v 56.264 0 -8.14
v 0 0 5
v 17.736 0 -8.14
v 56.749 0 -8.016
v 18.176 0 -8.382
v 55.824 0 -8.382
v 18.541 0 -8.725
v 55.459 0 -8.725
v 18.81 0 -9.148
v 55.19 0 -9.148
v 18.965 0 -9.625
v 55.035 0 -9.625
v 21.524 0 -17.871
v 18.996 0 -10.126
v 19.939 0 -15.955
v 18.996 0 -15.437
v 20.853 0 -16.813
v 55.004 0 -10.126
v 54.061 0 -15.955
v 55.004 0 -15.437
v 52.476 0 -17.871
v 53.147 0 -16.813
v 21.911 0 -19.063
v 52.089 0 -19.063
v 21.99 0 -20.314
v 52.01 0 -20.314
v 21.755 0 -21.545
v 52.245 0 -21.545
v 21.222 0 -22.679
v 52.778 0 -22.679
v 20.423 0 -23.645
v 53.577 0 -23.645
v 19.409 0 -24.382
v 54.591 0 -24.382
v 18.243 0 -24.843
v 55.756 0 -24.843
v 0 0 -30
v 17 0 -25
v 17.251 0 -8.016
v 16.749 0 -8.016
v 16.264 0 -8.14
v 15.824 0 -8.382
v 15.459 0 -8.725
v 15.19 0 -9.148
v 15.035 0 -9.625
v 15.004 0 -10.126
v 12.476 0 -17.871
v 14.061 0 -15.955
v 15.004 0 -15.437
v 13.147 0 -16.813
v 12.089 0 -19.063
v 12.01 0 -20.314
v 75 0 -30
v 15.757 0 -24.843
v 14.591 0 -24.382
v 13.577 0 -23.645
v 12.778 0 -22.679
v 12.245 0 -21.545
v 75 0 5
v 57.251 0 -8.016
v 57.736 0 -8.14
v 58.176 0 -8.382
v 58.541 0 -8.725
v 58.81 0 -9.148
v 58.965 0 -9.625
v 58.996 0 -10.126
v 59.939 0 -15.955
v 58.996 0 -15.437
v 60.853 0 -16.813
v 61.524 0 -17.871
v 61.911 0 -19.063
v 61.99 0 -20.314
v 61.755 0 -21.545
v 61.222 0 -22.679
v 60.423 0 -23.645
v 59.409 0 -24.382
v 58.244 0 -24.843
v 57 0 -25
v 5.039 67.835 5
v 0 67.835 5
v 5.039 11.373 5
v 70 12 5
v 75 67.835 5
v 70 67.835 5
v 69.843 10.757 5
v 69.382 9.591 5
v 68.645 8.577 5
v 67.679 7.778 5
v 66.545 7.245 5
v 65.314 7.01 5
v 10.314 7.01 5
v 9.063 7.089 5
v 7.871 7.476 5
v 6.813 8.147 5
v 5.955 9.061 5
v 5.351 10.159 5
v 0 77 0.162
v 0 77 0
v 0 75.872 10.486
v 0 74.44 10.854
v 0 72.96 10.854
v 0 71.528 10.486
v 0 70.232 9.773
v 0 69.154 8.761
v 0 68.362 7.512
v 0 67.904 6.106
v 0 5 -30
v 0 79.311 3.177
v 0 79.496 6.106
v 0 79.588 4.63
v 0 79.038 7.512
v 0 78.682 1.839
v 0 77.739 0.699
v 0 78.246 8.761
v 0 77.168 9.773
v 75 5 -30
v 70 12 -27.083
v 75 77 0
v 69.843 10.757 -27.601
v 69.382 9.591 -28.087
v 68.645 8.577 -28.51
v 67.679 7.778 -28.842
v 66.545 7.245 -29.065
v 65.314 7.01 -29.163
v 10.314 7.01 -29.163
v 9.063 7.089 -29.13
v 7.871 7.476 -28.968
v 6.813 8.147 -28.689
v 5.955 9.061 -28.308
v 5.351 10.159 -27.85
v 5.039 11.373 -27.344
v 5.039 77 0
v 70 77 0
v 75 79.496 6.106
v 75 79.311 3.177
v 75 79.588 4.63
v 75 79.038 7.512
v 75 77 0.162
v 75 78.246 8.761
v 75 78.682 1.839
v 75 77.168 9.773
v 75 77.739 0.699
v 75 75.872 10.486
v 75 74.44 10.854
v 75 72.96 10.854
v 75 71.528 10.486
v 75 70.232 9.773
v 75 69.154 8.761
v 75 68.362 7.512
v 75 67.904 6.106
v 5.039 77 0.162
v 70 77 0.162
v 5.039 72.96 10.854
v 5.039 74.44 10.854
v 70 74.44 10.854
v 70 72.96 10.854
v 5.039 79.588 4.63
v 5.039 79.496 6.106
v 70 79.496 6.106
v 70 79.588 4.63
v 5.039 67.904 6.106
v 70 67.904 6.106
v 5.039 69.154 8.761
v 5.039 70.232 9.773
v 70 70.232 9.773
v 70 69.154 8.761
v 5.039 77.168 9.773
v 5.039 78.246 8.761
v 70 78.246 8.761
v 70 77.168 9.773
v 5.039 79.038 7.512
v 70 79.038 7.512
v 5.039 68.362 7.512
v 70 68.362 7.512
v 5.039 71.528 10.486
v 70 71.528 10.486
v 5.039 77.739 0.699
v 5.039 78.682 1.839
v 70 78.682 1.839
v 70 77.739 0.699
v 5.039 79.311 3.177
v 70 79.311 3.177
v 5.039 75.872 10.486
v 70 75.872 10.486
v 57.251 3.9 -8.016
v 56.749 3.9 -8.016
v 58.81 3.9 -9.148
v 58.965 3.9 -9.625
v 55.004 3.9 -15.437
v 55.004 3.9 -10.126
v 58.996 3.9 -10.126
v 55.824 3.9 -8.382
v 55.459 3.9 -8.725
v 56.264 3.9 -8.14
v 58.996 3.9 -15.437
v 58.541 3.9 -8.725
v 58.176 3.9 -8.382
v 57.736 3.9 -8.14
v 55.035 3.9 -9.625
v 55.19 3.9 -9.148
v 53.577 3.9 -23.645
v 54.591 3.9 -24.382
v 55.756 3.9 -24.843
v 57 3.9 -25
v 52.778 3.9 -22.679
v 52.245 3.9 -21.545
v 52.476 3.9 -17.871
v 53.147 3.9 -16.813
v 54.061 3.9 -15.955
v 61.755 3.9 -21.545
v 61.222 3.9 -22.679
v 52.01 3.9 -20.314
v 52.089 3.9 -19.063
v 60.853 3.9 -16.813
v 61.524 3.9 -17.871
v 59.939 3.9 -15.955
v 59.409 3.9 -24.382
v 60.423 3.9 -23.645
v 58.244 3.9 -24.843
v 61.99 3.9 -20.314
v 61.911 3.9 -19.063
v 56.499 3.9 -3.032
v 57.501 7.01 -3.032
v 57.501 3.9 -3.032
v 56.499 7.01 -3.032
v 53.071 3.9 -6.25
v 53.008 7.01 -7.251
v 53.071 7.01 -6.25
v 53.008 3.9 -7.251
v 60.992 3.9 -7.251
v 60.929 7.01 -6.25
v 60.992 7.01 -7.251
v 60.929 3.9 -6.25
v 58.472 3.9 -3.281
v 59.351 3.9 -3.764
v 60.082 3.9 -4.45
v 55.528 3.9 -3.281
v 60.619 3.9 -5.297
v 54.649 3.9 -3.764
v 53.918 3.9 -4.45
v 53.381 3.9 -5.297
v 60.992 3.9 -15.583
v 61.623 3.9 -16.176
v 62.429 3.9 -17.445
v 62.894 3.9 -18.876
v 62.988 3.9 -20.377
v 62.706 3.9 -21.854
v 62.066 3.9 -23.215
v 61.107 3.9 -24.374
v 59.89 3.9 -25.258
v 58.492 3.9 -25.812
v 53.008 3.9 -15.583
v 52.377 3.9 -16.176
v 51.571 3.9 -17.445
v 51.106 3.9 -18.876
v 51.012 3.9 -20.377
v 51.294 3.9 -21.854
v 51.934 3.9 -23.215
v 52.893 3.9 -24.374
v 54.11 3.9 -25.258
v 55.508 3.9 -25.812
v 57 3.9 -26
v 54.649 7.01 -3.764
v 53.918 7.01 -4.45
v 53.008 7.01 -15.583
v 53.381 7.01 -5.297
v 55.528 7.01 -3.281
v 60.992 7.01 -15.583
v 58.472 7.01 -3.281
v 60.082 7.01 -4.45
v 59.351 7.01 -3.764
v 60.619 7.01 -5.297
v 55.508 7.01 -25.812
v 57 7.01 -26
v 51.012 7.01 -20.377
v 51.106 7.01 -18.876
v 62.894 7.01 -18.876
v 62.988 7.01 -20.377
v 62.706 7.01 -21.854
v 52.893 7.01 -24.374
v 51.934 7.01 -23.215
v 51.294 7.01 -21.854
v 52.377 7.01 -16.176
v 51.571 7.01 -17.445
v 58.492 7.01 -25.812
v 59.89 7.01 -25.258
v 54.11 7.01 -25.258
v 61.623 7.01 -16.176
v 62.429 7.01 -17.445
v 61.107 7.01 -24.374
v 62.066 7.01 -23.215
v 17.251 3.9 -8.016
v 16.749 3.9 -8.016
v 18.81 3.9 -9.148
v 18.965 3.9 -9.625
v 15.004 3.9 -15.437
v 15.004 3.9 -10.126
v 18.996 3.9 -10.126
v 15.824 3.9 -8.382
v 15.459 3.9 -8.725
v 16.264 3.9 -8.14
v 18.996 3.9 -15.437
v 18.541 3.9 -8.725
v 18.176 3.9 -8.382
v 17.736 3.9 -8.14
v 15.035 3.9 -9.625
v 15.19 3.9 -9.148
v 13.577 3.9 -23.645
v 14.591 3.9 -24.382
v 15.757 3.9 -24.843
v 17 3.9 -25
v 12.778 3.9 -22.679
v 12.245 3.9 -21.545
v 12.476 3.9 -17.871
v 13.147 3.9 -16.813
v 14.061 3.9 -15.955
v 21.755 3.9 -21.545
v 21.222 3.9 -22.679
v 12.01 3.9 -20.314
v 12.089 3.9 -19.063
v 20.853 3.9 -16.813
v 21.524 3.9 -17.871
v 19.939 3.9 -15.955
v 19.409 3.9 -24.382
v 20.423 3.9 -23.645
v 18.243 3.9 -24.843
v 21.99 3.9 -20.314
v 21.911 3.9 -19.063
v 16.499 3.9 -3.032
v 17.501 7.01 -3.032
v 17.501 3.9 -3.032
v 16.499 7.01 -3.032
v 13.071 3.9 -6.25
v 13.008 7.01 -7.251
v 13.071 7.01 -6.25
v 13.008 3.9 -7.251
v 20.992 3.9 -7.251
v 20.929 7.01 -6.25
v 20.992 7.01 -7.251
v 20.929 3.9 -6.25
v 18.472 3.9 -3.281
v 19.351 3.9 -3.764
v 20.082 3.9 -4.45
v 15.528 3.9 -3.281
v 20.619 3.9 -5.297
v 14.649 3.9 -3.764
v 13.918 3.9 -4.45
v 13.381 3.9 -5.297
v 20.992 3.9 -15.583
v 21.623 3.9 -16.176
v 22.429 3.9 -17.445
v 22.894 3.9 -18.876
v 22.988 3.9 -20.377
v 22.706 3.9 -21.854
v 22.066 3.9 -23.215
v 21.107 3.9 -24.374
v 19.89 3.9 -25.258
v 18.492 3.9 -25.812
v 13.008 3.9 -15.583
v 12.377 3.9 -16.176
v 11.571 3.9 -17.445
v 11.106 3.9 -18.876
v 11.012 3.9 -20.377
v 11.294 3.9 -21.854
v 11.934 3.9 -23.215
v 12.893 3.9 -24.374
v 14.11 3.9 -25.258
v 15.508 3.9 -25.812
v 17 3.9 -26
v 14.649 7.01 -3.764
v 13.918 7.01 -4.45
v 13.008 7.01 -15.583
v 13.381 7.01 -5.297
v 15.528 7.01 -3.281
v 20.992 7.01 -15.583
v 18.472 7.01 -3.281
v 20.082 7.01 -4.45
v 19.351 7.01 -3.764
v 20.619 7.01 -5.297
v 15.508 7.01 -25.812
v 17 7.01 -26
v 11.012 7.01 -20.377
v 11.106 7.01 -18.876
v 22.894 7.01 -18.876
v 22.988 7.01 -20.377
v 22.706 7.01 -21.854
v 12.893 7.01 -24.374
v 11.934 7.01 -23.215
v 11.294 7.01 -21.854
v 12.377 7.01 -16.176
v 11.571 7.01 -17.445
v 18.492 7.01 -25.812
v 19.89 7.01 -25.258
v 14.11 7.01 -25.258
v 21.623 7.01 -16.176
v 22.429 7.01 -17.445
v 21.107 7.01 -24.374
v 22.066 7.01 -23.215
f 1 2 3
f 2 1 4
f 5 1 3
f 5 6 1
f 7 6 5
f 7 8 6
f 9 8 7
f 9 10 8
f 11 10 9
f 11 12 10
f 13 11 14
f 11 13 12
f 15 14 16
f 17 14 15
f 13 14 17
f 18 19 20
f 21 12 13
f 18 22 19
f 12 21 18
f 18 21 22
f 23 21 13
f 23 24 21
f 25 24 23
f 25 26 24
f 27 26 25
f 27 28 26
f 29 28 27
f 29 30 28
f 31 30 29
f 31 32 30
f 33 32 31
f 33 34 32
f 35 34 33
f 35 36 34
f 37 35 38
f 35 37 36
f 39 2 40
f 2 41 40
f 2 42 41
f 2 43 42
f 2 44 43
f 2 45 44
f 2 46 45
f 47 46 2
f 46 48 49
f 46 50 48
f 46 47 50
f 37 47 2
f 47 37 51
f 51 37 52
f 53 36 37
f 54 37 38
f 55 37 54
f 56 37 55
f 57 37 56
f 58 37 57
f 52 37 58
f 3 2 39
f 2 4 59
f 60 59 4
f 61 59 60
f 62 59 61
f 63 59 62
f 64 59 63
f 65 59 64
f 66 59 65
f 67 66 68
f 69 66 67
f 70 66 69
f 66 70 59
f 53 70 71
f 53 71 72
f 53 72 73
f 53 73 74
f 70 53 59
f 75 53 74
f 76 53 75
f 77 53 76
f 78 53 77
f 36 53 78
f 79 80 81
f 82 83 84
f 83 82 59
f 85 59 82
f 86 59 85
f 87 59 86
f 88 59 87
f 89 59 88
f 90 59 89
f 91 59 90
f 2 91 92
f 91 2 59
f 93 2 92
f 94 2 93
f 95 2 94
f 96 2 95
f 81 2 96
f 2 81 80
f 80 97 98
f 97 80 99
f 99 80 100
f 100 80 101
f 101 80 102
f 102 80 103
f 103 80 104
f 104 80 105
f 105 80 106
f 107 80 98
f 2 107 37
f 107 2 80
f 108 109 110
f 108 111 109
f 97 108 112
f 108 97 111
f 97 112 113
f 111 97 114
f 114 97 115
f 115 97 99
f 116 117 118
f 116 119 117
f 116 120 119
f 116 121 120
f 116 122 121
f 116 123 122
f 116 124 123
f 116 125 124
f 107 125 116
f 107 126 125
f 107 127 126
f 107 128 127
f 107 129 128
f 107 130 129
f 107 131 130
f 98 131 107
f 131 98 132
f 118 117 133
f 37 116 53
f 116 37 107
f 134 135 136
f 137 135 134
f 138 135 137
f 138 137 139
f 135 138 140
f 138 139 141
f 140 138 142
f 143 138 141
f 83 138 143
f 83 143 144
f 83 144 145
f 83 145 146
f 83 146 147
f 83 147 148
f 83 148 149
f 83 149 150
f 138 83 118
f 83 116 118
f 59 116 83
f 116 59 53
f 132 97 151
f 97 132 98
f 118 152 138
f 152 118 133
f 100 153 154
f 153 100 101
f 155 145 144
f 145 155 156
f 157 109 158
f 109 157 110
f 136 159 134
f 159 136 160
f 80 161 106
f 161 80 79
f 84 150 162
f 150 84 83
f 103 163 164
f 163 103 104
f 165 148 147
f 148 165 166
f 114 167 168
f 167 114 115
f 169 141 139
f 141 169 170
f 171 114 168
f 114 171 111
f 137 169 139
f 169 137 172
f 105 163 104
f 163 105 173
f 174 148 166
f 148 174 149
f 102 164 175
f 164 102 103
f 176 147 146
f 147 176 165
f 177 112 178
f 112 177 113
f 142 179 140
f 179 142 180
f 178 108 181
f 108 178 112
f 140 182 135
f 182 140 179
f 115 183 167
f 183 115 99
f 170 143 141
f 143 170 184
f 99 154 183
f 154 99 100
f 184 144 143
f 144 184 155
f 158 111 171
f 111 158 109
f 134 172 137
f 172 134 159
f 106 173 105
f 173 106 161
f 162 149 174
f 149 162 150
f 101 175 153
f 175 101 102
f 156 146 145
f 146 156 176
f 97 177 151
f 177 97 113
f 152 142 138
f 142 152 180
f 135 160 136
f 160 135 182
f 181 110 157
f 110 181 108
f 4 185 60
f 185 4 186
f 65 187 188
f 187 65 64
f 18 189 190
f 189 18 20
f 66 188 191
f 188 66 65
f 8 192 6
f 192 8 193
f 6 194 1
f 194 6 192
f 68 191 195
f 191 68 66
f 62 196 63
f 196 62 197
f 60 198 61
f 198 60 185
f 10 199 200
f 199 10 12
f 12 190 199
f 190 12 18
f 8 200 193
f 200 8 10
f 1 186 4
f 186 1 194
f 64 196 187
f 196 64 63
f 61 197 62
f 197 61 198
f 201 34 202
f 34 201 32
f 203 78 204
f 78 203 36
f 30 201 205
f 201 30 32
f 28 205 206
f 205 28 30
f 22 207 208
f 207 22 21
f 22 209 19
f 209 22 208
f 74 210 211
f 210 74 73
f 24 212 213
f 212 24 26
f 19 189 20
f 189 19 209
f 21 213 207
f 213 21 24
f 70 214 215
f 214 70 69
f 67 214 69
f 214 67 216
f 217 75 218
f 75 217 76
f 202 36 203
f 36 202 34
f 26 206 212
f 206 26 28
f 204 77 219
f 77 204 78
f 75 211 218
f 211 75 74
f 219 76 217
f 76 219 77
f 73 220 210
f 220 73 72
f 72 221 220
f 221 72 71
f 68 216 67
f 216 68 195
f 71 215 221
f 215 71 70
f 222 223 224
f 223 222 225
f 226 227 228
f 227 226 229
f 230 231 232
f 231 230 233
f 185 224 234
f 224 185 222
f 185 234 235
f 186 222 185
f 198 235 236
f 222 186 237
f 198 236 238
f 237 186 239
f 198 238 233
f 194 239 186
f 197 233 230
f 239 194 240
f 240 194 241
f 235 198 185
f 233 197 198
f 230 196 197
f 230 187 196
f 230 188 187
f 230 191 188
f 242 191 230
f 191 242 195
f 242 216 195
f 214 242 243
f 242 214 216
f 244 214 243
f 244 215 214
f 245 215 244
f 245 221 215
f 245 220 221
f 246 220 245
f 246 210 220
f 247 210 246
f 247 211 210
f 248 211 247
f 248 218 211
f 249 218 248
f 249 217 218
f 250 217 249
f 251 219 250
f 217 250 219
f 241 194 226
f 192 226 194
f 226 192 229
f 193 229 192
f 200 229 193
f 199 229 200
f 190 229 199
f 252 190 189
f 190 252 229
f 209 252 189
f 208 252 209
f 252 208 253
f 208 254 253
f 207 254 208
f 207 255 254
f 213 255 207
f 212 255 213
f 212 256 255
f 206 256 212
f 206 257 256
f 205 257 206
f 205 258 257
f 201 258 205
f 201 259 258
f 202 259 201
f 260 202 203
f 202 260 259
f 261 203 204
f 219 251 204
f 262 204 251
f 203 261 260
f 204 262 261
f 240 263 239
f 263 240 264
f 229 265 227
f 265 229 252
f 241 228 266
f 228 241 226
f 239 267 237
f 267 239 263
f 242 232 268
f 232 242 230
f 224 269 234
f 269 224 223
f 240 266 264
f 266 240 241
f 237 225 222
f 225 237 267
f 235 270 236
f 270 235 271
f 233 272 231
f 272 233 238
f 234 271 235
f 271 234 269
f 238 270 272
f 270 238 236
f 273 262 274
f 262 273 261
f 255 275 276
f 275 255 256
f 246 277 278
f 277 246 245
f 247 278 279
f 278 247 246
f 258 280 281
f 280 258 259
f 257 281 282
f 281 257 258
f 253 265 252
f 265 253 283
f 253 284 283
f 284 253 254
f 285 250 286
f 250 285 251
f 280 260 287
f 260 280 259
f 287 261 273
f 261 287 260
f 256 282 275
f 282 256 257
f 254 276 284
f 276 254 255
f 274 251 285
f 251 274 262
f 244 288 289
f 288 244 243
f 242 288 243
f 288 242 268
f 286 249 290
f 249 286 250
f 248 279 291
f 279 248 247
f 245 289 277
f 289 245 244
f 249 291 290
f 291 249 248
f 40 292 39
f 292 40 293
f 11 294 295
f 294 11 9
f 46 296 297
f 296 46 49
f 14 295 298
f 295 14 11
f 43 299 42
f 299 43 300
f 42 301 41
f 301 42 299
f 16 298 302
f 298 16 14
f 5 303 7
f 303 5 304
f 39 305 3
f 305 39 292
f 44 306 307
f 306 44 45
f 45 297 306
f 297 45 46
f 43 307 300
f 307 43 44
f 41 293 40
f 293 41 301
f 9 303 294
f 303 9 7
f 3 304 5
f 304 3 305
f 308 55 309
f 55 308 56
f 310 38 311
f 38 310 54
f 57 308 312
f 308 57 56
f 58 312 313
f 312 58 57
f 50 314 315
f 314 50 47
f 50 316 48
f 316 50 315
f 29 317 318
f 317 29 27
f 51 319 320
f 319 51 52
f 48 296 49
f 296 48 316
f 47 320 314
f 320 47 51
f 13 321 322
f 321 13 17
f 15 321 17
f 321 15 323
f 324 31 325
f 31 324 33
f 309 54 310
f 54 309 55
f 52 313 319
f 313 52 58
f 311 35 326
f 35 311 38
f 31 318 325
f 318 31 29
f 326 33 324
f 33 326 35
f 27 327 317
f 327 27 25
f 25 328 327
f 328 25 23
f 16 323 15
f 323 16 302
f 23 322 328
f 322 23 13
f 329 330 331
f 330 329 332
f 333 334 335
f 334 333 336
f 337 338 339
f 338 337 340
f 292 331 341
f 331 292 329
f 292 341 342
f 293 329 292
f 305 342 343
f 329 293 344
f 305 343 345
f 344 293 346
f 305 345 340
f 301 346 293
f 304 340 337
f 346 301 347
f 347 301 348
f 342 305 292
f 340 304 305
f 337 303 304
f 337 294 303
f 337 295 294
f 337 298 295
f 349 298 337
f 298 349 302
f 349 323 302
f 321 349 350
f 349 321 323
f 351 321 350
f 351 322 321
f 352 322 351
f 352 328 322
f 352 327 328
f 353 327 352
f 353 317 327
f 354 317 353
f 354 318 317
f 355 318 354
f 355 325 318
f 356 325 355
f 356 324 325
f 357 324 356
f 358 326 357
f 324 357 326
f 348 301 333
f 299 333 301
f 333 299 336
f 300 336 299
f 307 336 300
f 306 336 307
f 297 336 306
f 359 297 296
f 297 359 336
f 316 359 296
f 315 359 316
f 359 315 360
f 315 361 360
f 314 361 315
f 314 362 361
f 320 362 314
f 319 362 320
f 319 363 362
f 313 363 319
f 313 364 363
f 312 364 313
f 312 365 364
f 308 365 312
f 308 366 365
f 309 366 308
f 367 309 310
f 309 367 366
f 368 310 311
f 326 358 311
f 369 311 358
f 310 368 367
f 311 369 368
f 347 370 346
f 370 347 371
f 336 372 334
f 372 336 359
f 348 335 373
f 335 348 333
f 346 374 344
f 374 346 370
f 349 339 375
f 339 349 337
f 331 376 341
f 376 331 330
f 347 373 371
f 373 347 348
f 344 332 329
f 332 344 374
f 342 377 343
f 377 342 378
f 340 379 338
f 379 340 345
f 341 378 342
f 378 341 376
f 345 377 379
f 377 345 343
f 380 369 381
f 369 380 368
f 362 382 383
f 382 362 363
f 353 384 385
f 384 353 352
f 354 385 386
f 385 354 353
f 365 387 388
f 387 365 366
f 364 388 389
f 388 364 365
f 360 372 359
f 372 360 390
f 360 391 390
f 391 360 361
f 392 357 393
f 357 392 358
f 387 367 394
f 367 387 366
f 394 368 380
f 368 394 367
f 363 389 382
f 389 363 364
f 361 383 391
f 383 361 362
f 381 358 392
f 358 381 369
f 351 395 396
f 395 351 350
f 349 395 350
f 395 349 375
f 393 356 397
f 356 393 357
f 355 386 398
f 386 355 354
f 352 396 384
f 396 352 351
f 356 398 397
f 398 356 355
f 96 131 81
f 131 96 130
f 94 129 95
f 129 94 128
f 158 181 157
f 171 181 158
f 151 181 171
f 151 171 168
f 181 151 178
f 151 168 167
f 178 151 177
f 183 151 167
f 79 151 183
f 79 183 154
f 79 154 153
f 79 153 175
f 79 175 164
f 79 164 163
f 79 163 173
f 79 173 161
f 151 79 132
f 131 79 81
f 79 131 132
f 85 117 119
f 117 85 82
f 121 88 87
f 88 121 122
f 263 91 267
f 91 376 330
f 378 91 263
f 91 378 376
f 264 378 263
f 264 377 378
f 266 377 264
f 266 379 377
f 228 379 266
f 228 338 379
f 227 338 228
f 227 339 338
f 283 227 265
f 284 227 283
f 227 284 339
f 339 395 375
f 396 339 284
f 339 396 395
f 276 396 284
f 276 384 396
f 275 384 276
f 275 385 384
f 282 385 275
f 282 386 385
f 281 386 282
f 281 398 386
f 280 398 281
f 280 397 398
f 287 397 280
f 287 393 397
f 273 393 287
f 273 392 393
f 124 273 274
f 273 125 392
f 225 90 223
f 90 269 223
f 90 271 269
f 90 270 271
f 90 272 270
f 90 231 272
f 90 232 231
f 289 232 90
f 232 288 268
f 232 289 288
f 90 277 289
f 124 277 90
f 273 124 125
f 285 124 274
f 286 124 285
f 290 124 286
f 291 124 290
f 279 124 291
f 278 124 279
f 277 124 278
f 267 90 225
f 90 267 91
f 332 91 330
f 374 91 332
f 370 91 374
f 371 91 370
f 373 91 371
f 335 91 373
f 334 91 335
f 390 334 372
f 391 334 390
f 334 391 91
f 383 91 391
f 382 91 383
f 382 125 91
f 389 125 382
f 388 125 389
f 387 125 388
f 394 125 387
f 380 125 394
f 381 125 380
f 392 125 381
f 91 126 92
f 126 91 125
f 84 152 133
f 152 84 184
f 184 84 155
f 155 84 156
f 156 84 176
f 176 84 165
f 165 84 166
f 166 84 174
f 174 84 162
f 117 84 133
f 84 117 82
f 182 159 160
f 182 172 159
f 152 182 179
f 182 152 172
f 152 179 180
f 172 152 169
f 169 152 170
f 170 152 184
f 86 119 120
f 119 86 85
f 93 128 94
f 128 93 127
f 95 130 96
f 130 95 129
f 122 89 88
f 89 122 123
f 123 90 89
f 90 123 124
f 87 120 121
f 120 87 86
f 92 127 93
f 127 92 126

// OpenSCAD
// file: ssn/tools.scad
function multiply_elements(a, b) = [a[0] * b[0], a[1] * b[1], a[2] * b[2]];

// Create 4 Elements by shifting the children elements to the 4 corner points described by x/y of the center
module squareUp(center) {
	for (i = [0:1:$children-1]) {
		translate(multiply_elements(center, [1, 1, 1])) children(i);
		translate(multiply_elements(center, [-1, 1, 1])) children(i);
		translate(multiply_elements(center, [1, -1, 1])) children(i);
		translate(multiply_elements(center, [-1, -1, 1])) children(i);
	}
}

// Translate only in Z direction
module tZ(z) {
	translate([0,0,z])
	for (i = [0:1:$children-1]) {
		children(i);
	}
}


// Create a cube with rounded corners in x/y plane 
module rounded_cube_flat(p, r, center=false) {

	mov = center? [0,0,0] : [p[0]/2, p[1]/2];

	translate(mov) {
		hull() {
			squareUp([p[0]/2-r, p[1]/2-r, 0])
			cylinder(r=r, h=p[2], center=center);
		}
	}
}
// main file
use <ssn/tools.scad>

$fn = 25;

opening = 65;
grip_width = 5;
hook_length = 70;
wall_thickness = 7;

module wallmount(d1, d2, l, h) {
	translate([0, h/2, 0])
	rotate([0,90,90]) {
		hull() {
			cylinder(d=d2, h=h, center=true);
			translate([-l - d2, 0, 0]) cylinder(d=d2, h=h, center=true);
		}
		cylinder(d=d1, h=h, center=true);
	}
}

module holder() {
	difference () {
		union ()  {
			hull() {
				// Wall part
				translate([0,0,-30]) cube([opening + 2*grip_width, 5, 30]);
				cube([opening + 2*grip_width, hook_length + wall_thickness, 5]);

			}
			translate([0, hook_length + wall_thickness/2 + 0.2, 5])
			rotate([0, 90, 0])
			cylinder(d=11.8, h=opening + 2*grip_width);
		}
		translate([5, wall_thickness, -50]) rounded_cube_flat([opening, hook_length + 10, 100], r=5);

		// Mounting holes
		translate([wall_thickness + opening - 15, -0.1, -20]) {
			wallmount(d1=10, d2=4, l=6, h=10);
			translate([0, 4, 0]) wallmount(d1=12, d2=8, l=5, h=10);
		}

		translate([wall_thickness + 10, -0.1, -20]) {
			wallmount(d1=10, d2=4, l=6, h=10);
			translate([0, 4, 0]) wallmount(d1=12, d2=8, l=5, h=10);
		}
	}
}

holder();
